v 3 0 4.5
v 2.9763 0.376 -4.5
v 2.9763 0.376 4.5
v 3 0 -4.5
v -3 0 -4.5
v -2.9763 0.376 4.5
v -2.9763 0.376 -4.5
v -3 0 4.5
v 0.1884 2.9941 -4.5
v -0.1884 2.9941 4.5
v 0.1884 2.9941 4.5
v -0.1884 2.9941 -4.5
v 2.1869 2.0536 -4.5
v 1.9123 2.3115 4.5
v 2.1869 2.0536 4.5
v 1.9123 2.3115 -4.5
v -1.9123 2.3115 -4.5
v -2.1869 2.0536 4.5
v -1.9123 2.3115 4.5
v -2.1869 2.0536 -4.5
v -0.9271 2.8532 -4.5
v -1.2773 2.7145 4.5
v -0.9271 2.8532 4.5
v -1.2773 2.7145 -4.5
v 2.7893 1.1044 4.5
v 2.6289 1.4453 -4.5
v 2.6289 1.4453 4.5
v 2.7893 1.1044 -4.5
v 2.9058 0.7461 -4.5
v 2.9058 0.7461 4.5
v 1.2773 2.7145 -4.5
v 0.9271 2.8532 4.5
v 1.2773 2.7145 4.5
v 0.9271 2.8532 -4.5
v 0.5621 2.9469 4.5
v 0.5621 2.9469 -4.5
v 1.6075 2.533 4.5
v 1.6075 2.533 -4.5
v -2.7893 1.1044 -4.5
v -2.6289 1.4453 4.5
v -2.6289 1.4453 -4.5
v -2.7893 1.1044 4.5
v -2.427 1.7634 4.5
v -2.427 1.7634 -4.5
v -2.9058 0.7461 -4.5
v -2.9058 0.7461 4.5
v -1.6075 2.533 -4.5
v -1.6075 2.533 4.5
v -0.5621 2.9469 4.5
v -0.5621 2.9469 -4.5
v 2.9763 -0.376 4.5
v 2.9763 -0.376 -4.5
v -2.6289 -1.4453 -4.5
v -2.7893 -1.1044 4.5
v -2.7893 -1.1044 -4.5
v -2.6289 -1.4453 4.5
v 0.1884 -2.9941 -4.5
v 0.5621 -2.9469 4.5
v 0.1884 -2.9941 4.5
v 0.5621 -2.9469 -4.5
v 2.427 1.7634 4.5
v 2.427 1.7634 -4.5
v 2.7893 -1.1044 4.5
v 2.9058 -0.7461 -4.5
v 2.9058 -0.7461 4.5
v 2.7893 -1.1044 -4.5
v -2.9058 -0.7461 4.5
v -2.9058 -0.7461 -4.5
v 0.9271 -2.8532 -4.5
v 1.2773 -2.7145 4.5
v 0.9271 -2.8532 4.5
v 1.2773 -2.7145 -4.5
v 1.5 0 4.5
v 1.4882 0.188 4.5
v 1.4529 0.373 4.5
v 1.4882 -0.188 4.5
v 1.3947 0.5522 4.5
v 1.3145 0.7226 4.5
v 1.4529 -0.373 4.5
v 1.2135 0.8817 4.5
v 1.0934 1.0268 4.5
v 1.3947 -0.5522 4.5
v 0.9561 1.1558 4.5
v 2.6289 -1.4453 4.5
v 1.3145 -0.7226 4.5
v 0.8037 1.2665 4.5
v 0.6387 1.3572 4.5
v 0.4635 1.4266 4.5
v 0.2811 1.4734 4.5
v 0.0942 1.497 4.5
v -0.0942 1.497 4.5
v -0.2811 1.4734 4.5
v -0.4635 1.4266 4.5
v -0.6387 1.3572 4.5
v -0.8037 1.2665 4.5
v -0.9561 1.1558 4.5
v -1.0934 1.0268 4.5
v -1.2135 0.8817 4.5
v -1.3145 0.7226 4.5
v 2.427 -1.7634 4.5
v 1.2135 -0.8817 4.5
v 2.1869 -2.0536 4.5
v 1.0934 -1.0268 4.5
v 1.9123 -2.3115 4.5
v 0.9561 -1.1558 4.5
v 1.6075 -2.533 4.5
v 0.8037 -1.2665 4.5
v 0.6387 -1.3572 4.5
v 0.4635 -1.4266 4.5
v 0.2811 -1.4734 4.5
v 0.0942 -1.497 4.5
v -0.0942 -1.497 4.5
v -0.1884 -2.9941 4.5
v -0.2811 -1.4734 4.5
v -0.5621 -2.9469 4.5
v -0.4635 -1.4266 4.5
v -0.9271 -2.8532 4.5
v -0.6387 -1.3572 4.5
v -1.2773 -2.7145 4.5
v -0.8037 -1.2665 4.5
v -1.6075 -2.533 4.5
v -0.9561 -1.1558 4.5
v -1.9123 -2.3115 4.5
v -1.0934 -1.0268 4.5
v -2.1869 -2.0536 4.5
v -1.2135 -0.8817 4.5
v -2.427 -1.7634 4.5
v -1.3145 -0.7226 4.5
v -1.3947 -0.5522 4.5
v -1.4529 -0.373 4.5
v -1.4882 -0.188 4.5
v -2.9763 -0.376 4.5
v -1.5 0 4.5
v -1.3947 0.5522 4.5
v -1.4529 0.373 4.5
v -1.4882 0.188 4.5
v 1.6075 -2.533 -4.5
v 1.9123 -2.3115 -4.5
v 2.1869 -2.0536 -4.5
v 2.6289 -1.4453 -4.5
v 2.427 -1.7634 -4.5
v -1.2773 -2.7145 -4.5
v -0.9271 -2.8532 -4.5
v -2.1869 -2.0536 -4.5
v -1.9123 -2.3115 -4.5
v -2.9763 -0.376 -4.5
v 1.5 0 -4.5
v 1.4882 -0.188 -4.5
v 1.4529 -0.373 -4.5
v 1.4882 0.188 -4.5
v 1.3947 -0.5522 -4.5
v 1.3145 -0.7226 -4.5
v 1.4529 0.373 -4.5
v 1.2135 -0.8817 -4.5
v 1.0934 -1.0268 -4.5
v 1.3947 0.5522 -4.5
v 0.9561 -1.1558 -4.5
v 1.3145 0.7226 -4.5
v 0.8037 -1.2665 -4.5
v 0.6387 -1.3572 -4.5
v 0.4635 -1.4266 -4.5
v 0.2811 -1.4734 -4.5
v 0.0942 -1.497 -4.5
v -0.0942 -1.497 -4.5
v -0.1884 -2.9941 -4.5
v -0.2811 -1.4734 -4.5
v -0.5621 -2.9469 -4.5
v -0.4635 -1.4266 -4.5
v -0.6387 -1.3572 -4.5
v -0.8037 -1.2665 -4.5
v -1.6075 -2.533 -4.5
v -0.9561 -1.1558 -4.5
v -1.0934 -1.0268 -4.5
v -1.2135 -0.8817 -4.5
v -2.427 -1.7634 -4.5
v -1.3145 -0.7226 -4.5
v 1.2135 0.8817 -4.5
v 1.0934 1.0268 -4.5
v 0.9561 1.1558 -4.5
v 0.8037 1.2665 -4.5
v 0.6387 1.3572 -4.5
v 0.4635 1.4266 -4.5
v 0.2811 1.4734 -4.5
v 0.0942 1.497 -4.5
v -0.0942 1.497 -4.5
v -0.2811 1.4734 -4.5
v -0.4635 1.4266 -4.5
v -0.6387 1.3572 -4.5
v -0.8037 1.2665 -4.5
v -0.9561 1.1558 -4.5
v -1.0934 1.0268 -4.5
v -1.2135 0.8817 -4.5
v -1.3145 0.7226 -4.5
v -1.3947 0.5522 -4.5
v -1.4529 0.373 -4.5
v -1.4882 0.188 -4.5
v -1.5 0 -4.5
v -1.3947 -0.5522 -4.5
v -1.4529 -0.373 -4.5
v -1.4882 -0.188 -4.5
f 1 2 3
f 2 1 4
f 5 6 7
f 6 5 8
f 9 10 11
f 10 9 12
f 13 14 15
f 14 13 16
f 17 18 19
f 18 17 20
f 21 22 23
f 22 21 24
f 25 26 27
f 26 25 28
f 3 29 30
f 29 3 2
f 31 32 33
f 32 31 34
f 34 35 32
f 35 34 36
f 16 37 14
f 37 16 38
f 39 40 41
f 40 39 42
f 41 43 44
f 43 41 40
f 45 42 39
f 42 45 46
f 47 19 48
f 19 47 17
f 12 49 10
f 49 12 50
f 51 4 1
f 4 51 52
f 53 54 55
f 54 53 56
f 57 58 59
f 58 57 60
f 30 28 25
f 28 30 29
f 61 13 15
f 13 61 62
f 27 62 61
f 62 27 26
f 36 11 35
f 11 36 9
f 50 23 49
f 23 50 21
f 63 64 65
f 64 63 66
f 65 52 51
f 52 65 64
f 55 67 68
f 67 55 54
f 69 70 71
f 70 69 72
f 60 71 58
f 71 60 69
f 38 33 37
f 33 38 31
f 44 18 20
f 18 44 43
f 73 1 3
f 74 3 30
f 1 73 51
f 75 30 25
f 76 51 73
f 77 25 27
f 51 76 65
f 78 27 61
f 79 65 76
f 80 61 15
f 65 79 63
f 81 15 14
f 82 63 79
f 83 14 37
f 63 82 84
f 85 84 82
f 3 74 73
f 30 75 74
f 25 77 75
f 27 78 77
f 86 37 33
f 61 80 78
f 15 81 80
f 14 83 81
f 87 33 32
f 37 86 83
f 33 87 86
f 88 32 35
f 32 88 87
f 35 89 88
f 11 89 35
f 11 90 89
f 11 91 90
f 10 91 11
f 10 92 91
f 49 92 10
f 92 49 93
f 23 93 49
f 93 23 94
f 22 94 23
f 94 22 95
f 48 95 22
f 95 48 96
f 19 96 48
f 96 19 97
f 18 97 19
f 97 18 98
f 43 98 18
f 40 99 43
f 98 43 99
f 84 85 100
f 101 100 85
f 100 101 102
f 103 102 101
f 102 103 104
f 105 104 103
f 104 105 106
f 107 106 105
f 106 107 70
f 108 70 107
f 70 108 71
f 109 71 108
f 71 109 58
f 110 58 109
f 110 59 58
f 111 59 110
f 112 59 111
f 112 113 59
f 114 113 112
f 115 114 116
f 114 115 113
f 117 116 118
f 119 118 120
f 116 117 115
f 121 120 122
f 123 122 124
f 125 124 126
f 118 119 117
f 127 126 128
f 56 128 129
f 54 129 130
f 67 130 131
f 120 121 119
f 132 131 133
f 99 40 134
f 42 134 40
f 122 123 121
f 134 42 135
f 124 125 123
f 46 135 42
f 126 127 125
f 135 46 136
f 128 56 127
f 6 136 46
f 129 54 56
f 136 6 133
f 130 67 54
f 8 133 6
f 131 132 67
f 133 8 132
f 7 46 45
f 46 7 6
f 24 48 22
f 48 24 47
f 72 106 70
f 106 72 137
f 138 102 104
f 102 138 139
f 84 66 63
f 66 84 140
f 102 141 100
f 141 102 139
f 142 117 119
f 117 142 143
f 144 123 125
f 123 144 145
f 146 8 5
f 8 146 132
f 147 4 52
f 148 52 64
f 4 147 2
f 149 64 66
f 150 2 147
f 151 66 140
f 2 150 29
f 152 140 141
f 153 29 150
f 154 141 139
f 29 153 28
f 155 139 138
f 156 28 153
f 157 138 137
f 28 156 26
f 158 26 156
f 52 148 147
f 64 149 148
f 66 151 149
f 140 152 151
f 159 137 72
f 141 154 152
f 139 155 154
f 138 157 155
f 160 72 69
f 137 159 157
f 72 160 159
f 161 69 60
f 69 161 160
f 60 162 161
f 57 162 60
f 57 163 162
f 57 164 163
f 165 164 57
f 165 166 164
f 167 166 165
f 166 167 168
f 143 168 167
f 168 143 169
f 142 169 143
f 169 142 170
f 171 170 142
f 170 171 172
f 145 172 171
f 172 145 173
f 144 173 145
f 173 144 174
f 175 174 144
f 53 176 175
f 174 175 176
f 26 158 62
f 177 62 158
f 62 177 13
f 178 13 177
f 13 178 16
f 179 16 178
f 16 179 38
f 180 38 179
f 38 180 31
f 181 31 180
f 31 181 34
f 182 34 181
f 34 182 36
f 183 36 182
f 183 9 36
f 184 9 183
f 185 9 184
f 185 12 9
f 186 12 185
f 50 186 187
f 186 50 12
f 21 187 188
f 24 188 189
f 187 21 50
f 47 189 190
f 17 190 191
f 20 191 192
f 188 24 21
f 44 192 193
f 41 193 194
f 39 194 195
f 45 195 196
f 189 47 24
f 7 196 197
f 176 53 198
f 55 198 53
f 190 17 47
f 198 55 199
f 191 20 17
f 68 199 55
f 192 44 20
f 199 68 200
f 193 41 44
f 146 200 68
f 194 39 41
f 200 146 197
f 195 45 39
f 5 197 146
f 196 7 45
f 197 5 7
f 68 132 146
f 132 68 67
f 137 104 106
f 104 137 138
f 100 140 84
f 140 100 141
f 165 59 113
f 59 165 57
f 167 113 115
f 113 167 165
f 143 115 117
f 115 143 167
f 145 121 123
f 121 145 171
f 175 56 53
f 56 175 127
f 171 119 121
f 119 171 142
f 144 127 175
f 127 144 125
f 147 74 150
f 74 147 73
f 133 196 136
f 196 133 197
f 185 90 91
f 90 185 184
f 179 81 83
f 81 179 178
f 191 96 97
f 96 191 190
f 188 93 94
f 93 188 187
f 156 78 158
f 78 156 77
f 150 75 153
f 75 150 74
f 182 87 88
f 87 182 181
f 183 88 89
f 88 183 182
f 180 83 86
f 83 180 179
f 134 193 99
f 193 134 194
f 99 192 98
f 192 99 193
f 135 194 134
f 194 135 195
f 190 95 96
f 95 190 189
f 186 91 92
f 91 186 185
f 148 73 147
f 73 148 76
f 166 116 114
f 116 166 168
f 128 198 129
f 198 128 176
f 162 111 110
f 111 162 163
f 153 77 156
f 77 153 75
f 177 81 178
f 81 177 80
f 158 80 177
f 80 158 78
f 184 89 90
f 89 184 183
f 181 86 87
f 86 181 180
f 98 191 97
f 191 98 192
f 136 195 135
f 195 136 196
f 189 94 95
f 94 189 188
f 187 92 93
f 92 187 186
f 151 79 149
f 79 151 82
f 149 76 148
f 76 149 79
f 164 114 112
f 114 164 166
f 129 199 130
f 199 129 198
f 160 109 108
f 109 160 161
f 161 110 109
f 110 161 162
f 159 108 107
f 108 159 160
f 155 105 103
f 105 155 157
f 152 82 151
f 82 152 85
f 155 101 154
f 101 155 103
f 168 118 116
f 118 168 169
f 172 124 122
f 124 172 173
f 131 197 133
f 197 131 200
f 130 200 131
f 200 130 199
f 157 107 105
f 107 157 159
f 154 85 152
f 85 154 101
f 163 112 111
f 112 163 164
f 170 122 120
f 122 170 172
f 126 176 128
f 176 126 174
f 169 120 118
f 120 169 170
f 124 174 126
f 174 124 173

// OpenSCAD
$fn = 50;


difference() {
	union() {
		translate(v = [0, 0, -4.5000000000]) {
			cylinder(h = 9, r = 3.0000000000);
		}
	}
	union() {
		translate(v = [0, 0, -100.0000000000]) {
			cylinder(h = 200, r = 1.5000000000);
		}
	}
}
